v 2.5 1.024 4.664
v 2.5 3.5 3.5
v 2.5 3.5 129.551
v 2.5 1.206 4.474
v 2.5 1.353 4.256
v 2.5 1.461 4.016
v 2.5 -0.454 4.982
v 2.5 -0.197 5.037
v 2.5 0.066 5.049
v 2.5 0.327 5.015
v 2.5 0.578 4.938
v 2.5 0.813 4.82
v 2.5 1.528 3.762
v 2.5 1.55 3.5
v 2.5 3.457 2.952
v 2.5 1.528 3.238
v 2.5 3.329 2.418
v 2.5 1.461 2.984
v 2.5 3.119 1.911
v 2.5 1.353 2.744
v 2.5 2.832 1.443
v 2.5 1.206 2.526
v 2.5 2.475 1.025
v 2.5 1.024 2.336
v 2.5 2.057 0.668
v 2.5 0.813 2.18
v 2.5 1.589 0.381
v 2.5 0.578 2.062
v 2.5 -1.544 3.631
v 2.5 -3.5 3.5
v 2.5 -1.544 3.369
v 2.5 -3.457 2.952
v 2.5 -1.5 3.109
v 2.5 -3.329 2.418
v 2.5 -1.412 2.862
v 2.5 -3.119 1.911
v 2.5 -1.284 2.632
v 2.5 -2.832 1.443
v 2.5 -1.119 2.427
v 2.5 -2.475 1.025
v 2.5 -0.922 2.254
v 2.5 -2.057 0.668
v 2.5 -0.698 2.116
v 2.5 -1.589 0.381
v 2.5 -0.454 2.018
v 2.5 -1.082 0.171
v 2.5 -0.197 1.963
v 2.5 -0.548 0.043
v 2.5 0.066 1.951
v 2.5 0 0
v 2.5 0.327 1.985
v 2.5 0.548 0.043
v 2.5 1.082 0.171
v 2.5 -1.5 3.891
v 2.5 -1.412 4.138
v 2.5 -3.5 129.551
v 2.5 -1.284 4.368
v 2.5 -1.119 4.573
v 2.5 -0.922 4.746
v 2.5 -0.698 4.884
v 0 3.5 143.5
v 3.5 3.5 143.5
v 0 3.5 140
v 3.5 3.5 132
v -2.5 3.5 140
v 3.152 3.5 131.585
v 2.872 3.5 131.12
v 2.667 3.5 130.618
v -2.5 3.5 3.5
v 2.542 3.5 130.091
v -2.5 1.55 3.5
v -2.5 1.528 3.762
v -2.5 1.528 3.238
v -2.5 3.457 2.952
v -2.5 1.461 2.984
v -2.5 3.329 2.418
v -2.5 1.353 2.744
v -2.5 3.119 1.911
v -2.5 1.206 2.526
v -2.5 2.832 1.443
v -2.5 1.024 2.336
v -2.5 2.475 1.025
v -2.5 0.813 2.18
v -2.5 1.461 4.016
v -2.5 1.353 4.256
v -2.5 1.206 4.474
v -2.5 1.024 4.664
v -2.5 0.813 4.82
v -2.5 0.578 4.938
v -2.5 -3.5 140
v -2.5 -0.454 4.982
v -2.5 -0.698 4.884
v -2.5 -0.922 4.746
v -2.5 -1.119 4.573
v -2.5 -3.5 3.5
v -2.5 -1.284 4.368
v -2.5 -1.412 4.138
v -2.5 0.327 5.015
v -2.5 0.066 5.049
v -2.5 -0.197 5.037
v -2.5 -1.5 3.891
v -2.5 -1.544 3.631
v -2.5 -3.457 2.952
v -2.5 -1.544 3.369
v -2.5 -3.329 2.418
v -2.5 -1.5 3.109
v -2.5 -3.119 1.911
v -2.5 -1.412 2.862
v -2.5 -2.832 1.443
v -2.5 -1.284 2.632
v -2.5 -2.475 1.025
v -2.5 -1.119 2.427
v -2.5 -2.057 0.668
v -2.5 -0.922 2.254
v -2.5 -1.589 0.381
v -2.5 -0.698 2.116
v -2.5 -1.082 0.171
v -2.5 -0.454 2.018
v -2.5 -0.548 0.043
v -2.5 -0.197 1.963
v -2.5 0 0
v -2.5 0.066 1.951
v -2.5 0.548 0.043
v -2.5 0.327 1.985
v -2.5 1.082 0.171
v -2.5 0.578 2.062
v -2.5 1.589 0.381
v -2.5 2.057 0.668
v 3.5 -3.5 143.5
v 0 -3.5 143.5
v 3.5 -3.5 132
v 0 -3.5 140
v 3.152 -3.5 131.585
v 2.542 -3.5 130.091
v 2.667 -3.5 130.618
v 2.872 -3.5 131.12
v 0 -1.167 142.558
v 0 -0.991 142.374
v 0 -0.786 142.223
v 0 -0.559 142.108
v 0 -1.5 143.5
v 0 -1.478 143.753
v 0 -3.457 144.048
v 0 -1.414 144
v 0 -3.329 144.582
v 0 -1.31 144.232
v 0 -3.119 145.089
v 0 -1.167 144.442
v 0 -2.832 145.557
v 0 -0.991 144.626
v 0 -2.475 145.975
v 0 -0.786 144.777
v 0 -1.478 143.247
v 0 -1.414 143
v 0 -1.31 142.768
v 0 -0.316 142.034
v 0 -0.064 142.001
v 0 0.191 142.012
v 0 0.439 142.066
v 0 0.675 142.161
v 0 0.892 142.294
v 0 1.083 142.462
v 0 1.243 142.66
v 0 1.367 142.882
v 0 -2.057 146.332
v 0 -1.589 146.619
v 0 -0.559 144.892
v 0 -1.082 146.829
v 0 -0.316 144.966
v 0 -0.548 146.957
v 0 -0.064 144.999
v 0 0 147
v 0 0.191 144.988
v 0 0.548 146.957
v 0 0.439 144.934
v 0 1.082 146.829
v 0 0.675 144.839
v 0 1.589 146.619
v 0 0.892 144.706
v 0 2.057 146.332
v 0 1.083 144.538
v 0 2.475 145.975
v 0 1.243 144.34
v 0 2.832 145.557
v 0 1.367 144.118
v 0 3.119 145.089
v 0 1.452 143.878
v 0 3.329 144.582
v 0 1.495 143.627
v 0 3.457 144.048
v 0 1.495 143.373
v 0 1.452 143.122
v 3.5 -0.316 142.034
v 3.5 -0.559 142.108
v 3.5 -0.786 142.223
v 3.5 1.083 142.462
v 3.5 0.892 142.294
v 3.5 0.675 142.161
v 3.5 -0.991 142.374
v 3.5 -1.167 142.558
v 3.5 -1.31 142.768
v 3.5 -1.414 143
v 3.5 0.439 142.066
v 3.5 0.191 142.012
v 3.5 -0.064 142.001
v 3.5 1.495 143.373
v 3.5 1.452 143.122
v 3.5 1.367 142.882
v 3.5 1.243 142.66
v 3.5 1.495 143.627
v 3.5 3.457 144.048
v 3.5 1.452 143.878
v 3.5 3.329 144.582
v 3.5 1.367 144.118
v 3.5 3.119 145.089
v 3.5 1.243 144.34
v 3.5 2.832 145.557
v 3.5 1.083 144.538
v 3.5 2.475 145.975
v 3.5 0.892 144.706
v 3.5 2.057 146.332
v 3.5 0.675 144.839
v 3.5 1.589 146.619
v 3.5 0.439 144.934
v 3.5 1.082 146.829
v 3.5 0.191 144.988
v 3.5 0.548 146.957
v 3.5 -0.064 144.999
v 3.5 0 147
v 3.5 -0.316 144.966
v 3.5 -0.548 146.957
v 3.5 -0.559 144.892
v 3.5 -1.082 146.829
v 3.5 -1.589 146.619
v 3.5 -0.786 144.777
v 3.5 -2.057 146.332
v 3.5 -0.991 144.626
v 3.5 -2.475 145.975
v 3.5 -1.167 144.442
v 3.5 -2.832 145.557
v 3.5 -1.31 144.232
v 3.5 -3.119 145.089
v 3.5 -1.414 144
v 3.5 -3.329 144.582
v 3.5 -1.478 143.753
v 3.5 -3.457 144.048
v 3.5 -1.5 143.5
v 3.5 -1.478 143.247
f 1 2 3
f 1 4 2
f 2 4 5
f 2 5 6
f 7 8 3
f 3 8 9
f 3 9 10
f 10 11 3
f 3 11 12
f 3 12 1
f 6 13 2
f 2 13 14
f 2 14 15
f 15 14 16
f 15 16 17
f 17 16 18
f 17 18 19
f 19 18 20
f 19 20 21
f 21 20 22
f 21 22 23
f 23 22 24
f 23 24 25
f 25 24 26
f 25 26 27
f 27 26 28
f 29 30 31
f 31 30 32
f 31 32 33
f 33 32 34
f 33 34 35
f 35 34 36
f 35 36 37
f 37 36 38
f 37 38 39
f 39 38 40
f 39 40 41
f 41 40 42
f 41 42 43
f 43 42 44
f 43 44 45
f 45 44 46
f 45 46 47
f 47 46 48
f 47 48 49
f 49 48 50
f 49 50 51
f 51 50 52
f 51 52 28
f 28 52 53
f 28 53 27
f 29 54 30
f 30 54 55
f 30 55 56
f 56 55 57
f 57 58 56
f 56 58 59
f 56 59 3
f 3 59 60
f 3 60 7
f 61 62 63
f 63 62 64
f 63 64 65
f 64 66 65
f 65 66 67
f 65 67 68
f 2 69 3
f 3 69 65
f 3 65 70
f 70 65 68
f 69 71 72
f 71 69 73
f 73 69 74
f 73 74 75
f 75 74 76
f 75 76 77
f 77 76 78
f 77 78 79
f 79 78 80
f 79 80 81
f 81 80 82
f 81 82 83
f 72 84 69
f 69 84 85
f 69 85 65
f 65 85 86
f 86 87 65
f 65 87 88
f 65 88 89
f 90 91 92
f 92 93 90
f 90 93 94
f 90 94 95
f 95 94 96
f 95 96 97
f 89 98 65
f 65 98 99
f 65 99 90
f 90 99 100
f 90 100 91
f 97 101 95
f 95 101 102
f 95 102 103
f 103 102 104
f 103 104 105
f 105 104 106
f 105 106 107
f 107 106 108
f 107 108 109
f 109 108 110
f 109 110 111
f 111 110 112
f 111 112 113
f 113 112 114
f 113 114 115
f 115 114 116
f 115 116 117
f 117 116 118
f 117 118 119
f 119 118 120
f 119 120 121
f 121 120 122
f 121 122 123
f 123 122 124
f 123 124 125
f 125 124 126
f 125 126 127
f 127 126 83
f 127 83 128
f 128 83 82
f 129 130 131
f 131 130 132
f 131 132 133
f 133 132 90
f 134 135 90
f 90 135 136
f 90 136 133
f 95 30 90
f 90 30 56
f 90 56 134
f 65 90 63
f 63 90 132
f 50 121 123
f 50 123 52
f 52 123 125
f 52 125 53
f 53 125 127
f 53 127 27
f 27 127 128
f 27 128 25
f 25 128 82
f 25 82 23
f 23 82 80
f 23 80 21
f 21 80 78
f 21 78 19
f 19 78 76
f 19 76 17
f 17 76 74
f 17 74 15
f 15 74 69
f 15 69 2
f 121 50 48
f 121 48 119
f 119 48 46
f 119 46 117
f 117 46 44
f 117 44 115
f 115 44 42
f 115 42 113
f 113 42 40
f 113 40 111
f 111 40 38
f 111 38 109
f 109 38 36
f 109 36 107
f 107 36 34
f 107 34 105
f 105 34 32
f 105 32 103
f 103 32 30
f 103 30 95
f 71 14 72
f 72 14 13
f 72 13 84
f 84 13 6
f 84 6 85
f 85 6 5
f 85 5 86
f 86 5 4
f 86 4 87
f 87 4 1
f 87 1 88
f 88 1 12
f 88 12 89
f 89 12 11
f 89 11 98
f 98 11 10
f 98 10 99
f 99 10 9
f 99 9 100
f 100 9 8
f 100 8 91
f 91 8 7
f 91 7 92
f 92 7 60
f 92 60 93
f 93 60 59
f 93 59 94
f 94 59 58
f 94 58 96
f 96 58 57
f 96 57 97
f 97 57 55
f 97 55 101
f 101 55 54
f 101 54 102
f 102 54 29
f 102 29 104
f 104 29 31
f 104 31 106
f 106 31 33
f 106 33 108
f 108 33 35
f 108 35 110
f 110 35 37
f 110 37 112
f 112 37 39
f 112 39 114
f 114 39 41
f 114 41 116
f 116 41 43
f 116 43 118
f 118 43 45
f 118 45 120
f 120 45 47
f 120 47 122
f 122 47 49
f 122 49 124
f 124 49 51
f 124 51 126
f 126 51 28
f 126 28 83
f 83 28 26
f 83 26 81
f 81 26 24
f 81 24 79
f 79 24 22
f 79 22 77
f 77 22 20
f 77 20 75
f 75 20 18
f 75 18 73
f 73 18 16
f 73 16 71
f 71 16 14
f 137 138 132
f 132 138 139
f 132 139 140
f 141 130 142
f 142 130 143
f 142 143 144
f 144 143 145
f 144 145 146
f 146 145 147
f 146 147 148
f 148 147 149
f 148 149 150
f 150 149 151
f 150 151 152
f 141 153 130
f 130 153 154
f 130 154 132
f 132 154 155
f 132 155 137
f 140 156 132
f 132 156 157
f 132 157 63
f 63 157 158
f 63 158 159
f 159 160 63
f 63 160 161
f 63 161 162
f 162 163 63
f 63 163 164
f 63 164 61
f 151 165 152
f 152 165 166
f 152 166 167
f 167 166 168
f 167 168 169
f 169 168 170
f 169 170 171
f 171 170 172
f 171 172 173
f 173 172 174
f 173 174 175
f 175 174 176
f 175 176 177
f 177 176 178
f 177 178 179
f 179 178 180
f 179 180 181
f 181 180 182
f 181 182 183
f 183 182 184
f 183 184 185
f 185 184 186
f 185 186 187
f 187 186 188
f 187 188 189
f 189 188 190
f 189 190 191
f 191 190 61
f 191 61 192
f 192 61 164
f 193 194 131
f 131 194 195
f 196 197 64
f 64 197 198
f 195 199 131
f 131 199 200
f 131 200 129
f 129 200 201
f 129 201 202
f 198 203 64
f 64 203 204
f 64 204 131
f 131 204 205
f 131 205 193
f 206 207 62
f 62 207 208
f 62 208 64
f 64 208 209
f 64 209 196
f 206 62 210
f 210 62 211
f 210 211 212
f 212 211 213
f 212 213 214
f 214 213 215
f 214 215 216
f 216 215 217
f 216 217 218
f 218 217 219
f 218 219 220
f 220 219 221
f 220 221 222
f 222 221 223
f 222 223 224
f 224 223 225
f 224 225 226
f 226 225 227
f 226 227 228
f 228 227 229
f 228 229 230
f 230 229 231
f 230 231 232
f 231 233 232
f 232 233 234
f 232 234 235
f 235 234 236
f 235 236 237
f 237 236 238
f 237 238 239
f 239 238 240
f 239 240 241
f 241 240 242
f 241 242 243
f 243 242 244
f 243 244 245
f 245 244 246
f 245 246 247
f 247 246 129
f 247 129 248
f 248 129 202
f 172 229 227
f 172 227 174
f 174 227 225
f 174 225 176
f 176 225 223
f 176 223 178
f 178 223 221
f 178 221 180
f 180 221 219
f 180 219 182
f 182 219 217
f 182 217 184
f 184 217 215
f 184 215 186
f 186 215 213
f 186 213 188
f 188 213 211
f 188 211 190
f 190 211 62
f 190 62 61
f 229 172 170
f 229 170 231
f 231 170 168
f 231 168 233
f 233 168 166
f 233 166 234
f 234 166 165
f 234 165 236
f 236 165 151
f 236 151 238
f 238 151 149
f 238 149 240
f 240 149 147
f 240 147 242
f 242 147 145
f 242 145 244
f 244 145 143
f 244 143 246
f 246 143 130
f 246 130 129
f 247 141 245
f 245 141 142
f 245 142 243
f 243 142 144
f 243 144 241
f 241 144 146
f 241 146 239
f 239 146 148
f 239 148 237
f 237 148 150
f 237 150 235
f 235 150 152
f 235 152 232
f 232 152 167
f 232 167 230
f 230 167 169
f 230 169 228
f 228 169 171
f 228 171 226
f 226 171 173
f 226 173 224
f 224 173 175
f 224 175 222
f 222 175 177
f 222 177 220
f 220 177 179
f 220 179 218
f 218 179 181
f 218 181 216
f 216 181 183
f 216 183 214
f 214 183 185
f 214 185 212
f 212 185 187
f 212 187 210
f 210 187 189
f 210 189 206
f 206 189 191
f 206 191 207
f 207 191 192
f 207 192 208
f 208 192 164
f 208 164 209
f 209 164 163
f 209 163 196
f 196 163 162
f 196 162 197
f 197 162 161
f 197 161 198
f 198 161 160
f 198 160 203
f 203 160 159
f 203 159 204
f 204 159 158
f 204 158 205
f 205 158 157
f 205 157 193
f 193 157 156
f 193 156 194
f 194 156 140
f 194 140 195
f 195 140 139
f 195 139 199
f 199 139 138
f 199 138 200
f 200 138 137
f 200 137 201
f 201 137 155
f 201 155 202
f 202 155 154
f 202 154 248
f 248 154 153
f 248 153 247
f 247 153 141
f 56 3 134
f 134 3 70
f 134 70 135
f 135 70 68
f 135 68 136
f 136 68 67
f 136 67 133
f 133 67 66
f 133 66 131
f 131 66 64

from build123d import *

# Parameters (mm, degrees)
SKETCH_1_W          = 5
SKETCH_1_H          = 7
EXTRUDE_2_DEPTH     = 140
FILLET_1_R          = 3.5
SKETCH_3_R          = 1.55
CUT_EXTRUDE_1_DEPTH = 141.132972565
SKETCH_4_W          = 2.5
SKETCH_4_H          = 7
EXTRUDE_3_DEPTH     = 7
SKETCH_5_W          = 15
SKETCH_5_H          = 7
EXTRUDE_4_DEPTH     = 1
FILLET_2_R          = 3.5
SKETCH_6_R          = 1.5
CUT_EXTRUDE_2_DEPTH = 148.083309726
FILLET_3_R          = 3.5


# Some blends are built 0.0001 mm under size
with BuildPart() as part:
    # 草图1 → 凸台-拉伸2 (new body)
    with BuildSketch(Plane.XY):
        Rectangle(SKETCH_1_W, SKETCH_1_H)
    extrude(amount=EXTRUDE_2_DEPTH)

    # 圆角1
    fillet_1_edges = [part.edges().sort_by_distance(p)[0] for p in [
        (0, -3.5, 0),
        (0, 3.5, 0),
    ]]
    fillet(fillet_1_edges, radius=FILLET_1_R - 0.0001)  # a hair under: the kernel refuses the full size

    # 草图3 → 切除-拉伸1 (cut, through all)
    with BuildSketch(Plane(origin=(2.5, 0, 0), x_dir=(0, 0, -1), z_dir=(1, 0, 0))):
        with Locations(Location((-3.5, 0, 0), (0, 0, 90))):
            Circle(SKETCH_3_R)
    extrude(amount=-CUT_EXTRUDE_1_DEPTH, mode=Mode.SUBTRACT)

    # 草图4 → 凸台-拉伸3 (add)
    with BuildSketch(Plane.XY.offset(140)):
        with Locations((1.25, 0)):
            Rectangle(SKETCH_4_W, SKETCH_4_H)
    extrude(amount=EXTRUDE_3_DEPTH)

    # 草图5 → 凸台-拉伸4 (add)
    with BuildSketch(Plane(origin=(2.5, 0, 0), x_dir=(0, 0, -1), z_dir=(1, 0, 0))):
        with Locations((-139.5, 0)):
            Rectangle(SKETCH_5_W, SKETCH_5_H)
    extrude(amount=EXTRUDE_4_DEPTH)

    # 圆角2
    fillet_2_edges = [part.edges().sort_by_distance(p)[0] for p in [
        (1.75, -3.5, 147),
        (1.75, 3.5, 147),
    ]]
    fillet(fillet_2_edges, radius=FILLET_2_R - 0.0001)  # a hair under: the kernel refuses the full size

    # 草图6 → 切除-拉伸2 (cut, through all)
    with BuildSketch(Plane.ZY):
        with Locations(Location((143.5, 0, 0), (0, 0, 270))):
            Circle(SKETCH_6_R)
    extrude(amount=-CUT_EXTRUDE_2_DEPTH, mode=Mode.SUBTRACT)

    # 圆角3
    # the kernel refuses this fillet: 3.5 mm, written as the material it adds along each edge
    with BuildSketch(Plane(origin=(2.5, 3.5, 132), x_dir=(1, 0, 0), z_dir=(0, -1, 0))) as fillet_3_piece_1:
        with BuildLine():
            CenterArc((3.5, -2.449489743), FILLET_3_R, 135.584691403, 44.415308597)
            Line((0, -2.449489743), (-0.07, -2.449489743))
            Line((-0.07, -2.449489743), (-0.07, 0))
            Line((-0.07, 0), (0, 0.07))
            ThreePointArc((0, 0.07), (0.5, 0.07), (0.95, 0.048989795))
            Line((0.95, 0.048989795), (1, 0))
        make_face()
    extrude(amount=7)


solid = part.part
